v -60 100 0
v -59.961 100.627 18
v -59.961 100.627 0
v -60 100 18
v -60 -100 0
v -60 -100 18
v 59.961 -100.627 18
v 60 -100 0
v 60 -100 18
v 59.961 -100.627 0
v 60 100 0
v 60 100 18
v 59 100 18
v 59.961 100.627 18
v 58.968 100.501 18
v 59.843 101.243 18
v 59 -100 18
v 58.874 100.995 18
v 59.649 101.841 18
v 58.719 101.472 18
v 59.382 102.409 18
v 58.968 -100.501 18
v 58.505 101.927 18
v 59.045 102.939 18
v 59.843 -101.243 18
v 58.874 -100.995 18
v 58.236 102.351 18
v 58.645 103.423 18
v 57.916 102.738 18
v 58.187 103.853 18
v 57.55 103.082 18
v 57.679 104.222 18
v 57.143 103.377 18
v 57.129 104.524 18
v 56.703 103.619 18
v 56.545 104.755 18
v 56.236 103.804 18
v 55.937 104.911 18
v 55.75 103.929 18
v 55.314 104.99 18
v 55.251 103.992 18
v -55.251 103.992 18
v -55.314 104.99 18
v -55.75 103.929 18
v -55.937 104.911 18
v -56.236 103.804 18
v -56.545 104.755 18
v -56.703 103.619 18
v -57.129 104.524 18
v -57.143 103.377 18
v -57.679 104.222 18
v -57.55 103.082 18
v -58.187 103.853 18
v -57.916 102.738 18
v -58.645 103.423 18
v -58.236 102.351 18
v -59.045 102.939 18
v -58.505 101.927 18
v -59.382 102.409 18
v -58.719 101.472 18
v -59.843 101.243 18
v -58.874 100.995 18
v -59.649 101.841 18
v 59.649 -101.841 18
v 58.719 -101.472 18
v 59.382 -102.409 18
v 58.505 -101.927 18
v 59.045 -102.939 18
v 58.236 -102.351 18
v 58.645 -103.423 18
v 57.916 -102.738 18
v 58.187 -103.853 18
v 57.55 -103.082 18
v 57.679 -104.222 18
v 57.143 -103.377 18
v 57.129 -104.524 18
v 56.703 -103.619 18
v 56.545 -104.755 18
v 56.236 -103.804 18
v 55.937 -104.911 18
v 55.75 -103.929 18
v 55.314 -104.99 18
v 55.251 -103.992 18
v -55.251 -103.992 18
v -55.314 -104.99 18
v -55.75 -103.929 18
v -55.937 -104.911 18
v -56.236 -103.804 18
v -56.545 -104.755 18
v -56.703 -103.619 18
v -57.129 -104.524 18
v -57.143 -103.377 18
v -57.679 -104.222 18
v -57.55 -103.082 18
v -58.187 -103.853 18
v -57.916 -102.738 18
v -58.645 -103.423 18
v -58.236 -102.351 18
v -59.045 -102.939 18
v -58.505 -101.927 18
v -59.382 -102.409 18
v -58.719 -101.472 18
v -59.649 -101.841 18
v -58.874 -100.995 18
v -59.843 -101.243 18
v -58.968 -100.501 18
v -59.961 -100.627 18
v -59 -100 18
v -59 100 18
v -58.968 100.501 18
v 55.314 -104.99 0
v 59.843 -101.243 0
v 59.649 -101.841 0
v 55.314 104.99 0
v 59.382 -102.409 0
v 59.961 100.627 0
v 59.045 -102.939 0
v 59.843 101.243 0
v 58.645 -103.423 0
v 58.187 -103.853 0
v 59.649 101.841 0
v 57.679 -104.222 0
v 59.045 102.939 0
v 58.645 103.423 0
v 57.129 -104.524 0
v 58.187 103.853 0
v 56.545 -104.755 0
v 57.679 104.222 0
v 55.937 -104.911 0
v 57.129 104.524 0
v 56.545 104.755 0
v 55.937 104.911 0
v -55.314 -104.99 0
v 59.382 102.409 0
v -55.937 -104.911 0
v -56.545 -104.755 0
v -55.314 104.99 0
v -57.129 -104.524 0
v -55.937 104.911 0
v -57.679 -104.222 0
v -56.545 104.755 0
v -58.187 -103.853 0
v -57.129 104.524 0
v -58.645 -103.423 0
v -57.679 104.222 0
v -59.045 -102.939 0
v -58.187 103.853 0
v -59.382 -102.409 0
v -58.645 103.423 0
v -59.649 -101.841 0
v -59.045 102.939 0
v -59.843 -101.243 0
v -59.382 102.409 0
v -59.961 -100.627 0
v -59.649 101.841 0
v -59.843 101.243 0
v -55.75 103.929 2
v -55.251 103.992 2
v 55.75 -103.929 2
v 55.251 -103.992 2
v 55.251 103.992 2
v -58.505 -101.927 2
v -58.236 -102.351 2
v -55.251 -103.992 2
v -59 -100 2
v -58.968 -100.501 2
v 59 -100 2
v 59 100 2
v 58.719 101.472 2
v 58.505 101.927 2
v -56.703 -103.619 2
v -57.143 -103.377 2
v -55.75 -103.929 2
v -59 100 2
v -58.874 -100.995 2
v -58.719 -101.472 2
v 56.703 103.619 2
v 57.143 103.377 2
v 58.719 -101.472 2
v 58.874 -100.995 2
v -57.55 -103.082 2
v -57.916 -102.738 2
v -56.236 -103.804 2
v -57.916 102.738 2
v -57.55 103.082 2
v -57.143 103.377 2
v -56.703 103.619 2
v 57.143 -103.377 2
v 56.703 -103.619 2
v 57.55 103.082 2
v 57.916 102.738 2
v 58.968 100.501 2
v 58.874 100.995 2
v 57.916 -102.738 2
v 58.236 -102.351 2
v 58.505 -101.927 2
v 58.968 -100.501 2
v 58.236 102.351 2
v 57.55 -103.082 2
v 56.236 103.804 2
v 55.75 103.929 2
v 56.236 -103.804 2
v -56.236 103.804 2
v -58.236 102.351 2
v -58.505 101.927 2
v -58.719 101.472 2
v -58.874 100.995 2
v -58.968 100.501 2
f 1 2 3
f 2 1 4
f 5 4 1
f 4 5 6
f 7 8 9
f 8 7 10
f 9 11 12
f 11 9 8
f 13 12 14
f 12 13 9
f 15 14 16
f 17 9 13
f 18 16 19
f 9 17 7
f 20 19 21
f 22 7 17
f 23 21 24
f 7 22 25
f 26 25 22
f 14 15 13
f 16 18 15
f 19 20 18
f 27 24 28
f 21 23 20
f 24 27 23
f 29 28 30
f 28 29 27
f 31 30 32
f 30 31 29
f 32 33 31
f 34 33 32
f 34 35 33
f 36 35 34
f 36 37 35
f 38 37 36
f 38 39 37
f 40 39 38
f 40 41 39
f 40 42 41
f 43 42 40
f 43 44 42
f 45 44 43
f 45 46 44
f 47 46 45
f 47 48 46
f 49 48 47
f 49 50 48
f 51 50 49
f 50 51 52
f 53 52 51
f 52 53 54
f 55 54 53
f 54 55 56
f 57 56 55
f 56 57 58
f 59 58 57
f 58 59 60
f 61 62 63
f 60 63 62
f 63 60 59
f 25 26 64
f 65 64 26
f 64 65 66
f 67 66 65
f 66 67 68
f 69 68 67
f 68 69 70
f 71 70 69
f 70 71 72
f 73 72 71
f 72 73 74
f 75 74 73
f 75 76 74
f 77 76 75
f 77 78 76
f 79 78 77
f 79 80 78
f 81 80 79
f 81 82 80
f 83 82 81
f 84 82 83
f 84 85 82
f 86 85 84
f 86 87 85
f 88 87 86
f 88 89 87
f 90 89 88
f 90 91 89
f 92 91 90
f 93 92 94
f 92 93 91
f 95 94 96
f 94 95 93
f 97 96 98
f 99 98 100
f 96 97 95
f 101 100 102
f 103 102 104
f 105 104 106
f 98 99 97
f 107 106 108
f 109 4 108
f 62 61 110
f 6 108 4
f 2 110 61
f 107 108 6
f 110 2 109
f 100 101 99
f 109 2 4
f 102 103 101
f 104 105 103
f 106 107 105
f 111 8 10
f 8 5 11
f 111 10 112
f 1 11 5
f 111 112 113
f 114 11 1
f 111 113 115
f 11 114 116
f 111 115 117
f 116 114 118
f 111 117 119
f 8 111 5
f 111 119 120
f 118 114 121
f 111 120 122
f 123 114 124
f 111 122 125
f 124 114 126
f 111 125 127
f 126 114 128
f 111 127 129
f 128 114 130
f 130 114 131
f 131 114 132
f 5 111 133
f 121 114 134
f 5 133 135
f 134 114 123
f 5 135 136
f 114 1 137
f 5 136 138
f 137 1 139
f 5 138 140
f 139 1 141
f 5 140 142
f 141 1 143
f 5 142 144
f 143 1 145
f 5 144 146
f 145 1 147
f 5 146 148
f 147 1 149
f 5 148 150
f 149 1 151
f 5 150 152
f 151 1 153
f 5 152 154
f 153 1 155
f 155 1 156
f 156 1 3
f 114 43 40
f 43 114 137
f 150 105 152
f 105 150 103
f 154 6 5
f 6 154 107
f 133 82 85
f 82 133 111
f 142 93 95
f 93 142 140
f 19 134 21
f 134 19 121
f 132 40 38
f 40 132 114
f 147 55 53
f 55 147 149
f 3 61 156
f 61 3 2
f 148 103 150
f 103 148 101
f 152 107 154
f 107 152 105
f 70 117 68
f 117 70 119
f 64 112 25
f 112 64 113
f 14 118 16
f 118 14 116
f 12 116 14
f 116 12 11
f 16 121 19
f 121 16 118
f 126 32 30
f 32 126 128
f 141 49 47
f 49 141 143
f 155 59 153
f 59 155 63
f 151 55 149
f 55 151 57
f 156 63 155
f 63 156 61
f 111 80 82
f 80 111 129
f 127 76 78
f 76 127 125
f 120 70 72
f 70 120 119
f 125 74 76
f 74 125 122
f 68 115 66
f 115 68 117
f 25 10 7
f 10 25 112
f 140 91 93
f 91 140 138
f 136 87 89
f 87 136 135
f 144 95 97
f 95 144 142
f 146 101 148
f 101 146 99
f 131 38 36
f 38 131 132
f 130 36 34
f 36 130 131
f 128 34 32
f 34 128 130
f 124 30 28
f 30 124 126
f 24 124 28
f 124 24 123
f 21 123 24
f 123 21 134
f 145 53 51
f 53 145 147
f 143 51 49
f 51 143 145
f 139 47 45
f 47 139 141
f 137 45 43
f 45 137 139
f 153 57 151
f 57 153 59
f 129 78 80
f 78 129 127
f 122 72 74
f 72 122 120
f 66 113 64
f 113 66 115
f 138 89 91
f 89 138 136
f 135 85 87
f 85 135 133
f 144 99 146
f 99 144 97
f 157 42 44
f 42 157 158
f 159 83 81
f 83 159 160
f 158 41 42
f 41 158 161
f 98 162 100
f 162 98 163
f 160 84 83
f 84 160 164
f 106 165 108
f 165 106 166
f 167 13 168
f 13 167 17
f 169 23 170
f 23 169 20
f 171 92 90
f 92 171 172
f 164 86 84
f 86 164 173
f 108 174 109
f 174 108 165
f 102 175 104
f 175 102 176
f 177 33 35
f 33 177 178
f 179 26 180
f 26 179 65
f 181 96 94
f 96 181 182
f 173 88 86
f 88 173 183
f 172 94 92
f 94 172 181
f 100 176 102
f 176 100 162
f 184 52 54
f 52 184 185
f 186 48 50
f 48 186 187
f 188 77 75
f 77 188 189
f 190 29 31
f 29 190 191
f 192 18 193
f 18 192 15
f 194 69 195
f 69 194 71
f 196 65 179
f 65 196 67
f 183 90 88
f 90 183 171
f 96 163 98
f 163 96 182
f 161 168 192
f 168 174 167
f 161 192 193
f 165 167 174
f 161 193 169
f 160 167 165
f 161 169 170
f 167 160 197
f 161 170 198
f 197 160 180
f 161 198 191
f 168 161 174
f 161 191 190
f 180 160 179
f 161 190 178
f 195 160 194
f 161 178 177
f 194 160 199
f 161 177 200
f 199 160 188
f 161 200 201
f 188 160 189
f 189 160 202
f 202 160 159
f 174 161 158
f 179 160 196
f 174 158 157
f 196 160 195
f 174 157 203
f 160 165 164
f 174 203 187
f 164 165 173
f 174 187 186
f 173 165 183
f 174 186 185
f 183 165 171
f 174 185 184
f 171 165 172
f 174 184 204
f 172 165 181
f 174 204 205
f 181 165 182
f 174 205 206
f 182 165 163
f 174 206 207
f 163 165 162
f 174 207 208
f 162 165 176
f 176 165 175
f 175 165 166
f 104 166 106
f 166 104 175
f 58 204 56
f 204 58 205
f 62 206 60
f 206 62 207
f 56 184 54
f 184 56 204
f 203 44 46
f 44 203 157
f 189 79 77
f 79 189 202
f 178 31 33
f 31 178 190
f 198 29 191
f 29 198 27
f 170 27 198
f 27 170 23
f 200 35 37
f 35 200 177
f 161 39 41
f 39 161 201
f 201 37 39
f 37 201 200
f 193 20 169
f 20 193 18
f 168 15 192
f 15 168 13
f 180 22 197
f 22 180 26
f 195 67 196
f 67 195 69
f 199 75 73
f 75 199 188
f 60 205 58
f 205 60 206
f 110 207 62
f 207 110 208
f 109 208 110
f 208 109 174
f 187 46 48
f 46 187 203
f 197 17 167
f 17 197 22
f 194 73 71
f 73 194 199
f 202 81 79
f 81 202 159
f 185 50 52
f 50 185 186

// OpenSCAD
$fn = 50;


difference() {
	union() {
		hull() {
			translate(v = [-55.0000000000, 100.0000000000, 0]) {
				cylinder(h = 18, r = 5);
			}
			translate(v = [55.0000000000, 100.0000000000, 0]) {
				cylinder(h = 18, r = 5);
			}
			translate(v = [-55.0000000000, -100.0000000000, 0]) {
				cylinder(h = 18, r = 5);
			}
			translate(v = [55.0000000000, -100.0000000000, 0]) {
				cylinder(h = 18, r = 5);
			}
		}
	}
	union() {
		translate(v = [0, 0, 2]) {
			hull() {
				translate(v = [-55.0000000000, 100.0000000000, 0]) {
					cylinder(h = 16, r = 4);
				}
				translate(v = [55.0000000000, 100.0000000000, 0]) {
					cylinder(h = 16, r = 4);
				}
				translate(v = [-55.0000000000, -100.0000000000, 0]) {
					cylinder(h = 16, r = 4);
				}
				translate(v = [55.0000000000, -100.0000000000, 0]) {
					cylinder(h = 16, r = 4);
				}
			}
		}
	}
}
